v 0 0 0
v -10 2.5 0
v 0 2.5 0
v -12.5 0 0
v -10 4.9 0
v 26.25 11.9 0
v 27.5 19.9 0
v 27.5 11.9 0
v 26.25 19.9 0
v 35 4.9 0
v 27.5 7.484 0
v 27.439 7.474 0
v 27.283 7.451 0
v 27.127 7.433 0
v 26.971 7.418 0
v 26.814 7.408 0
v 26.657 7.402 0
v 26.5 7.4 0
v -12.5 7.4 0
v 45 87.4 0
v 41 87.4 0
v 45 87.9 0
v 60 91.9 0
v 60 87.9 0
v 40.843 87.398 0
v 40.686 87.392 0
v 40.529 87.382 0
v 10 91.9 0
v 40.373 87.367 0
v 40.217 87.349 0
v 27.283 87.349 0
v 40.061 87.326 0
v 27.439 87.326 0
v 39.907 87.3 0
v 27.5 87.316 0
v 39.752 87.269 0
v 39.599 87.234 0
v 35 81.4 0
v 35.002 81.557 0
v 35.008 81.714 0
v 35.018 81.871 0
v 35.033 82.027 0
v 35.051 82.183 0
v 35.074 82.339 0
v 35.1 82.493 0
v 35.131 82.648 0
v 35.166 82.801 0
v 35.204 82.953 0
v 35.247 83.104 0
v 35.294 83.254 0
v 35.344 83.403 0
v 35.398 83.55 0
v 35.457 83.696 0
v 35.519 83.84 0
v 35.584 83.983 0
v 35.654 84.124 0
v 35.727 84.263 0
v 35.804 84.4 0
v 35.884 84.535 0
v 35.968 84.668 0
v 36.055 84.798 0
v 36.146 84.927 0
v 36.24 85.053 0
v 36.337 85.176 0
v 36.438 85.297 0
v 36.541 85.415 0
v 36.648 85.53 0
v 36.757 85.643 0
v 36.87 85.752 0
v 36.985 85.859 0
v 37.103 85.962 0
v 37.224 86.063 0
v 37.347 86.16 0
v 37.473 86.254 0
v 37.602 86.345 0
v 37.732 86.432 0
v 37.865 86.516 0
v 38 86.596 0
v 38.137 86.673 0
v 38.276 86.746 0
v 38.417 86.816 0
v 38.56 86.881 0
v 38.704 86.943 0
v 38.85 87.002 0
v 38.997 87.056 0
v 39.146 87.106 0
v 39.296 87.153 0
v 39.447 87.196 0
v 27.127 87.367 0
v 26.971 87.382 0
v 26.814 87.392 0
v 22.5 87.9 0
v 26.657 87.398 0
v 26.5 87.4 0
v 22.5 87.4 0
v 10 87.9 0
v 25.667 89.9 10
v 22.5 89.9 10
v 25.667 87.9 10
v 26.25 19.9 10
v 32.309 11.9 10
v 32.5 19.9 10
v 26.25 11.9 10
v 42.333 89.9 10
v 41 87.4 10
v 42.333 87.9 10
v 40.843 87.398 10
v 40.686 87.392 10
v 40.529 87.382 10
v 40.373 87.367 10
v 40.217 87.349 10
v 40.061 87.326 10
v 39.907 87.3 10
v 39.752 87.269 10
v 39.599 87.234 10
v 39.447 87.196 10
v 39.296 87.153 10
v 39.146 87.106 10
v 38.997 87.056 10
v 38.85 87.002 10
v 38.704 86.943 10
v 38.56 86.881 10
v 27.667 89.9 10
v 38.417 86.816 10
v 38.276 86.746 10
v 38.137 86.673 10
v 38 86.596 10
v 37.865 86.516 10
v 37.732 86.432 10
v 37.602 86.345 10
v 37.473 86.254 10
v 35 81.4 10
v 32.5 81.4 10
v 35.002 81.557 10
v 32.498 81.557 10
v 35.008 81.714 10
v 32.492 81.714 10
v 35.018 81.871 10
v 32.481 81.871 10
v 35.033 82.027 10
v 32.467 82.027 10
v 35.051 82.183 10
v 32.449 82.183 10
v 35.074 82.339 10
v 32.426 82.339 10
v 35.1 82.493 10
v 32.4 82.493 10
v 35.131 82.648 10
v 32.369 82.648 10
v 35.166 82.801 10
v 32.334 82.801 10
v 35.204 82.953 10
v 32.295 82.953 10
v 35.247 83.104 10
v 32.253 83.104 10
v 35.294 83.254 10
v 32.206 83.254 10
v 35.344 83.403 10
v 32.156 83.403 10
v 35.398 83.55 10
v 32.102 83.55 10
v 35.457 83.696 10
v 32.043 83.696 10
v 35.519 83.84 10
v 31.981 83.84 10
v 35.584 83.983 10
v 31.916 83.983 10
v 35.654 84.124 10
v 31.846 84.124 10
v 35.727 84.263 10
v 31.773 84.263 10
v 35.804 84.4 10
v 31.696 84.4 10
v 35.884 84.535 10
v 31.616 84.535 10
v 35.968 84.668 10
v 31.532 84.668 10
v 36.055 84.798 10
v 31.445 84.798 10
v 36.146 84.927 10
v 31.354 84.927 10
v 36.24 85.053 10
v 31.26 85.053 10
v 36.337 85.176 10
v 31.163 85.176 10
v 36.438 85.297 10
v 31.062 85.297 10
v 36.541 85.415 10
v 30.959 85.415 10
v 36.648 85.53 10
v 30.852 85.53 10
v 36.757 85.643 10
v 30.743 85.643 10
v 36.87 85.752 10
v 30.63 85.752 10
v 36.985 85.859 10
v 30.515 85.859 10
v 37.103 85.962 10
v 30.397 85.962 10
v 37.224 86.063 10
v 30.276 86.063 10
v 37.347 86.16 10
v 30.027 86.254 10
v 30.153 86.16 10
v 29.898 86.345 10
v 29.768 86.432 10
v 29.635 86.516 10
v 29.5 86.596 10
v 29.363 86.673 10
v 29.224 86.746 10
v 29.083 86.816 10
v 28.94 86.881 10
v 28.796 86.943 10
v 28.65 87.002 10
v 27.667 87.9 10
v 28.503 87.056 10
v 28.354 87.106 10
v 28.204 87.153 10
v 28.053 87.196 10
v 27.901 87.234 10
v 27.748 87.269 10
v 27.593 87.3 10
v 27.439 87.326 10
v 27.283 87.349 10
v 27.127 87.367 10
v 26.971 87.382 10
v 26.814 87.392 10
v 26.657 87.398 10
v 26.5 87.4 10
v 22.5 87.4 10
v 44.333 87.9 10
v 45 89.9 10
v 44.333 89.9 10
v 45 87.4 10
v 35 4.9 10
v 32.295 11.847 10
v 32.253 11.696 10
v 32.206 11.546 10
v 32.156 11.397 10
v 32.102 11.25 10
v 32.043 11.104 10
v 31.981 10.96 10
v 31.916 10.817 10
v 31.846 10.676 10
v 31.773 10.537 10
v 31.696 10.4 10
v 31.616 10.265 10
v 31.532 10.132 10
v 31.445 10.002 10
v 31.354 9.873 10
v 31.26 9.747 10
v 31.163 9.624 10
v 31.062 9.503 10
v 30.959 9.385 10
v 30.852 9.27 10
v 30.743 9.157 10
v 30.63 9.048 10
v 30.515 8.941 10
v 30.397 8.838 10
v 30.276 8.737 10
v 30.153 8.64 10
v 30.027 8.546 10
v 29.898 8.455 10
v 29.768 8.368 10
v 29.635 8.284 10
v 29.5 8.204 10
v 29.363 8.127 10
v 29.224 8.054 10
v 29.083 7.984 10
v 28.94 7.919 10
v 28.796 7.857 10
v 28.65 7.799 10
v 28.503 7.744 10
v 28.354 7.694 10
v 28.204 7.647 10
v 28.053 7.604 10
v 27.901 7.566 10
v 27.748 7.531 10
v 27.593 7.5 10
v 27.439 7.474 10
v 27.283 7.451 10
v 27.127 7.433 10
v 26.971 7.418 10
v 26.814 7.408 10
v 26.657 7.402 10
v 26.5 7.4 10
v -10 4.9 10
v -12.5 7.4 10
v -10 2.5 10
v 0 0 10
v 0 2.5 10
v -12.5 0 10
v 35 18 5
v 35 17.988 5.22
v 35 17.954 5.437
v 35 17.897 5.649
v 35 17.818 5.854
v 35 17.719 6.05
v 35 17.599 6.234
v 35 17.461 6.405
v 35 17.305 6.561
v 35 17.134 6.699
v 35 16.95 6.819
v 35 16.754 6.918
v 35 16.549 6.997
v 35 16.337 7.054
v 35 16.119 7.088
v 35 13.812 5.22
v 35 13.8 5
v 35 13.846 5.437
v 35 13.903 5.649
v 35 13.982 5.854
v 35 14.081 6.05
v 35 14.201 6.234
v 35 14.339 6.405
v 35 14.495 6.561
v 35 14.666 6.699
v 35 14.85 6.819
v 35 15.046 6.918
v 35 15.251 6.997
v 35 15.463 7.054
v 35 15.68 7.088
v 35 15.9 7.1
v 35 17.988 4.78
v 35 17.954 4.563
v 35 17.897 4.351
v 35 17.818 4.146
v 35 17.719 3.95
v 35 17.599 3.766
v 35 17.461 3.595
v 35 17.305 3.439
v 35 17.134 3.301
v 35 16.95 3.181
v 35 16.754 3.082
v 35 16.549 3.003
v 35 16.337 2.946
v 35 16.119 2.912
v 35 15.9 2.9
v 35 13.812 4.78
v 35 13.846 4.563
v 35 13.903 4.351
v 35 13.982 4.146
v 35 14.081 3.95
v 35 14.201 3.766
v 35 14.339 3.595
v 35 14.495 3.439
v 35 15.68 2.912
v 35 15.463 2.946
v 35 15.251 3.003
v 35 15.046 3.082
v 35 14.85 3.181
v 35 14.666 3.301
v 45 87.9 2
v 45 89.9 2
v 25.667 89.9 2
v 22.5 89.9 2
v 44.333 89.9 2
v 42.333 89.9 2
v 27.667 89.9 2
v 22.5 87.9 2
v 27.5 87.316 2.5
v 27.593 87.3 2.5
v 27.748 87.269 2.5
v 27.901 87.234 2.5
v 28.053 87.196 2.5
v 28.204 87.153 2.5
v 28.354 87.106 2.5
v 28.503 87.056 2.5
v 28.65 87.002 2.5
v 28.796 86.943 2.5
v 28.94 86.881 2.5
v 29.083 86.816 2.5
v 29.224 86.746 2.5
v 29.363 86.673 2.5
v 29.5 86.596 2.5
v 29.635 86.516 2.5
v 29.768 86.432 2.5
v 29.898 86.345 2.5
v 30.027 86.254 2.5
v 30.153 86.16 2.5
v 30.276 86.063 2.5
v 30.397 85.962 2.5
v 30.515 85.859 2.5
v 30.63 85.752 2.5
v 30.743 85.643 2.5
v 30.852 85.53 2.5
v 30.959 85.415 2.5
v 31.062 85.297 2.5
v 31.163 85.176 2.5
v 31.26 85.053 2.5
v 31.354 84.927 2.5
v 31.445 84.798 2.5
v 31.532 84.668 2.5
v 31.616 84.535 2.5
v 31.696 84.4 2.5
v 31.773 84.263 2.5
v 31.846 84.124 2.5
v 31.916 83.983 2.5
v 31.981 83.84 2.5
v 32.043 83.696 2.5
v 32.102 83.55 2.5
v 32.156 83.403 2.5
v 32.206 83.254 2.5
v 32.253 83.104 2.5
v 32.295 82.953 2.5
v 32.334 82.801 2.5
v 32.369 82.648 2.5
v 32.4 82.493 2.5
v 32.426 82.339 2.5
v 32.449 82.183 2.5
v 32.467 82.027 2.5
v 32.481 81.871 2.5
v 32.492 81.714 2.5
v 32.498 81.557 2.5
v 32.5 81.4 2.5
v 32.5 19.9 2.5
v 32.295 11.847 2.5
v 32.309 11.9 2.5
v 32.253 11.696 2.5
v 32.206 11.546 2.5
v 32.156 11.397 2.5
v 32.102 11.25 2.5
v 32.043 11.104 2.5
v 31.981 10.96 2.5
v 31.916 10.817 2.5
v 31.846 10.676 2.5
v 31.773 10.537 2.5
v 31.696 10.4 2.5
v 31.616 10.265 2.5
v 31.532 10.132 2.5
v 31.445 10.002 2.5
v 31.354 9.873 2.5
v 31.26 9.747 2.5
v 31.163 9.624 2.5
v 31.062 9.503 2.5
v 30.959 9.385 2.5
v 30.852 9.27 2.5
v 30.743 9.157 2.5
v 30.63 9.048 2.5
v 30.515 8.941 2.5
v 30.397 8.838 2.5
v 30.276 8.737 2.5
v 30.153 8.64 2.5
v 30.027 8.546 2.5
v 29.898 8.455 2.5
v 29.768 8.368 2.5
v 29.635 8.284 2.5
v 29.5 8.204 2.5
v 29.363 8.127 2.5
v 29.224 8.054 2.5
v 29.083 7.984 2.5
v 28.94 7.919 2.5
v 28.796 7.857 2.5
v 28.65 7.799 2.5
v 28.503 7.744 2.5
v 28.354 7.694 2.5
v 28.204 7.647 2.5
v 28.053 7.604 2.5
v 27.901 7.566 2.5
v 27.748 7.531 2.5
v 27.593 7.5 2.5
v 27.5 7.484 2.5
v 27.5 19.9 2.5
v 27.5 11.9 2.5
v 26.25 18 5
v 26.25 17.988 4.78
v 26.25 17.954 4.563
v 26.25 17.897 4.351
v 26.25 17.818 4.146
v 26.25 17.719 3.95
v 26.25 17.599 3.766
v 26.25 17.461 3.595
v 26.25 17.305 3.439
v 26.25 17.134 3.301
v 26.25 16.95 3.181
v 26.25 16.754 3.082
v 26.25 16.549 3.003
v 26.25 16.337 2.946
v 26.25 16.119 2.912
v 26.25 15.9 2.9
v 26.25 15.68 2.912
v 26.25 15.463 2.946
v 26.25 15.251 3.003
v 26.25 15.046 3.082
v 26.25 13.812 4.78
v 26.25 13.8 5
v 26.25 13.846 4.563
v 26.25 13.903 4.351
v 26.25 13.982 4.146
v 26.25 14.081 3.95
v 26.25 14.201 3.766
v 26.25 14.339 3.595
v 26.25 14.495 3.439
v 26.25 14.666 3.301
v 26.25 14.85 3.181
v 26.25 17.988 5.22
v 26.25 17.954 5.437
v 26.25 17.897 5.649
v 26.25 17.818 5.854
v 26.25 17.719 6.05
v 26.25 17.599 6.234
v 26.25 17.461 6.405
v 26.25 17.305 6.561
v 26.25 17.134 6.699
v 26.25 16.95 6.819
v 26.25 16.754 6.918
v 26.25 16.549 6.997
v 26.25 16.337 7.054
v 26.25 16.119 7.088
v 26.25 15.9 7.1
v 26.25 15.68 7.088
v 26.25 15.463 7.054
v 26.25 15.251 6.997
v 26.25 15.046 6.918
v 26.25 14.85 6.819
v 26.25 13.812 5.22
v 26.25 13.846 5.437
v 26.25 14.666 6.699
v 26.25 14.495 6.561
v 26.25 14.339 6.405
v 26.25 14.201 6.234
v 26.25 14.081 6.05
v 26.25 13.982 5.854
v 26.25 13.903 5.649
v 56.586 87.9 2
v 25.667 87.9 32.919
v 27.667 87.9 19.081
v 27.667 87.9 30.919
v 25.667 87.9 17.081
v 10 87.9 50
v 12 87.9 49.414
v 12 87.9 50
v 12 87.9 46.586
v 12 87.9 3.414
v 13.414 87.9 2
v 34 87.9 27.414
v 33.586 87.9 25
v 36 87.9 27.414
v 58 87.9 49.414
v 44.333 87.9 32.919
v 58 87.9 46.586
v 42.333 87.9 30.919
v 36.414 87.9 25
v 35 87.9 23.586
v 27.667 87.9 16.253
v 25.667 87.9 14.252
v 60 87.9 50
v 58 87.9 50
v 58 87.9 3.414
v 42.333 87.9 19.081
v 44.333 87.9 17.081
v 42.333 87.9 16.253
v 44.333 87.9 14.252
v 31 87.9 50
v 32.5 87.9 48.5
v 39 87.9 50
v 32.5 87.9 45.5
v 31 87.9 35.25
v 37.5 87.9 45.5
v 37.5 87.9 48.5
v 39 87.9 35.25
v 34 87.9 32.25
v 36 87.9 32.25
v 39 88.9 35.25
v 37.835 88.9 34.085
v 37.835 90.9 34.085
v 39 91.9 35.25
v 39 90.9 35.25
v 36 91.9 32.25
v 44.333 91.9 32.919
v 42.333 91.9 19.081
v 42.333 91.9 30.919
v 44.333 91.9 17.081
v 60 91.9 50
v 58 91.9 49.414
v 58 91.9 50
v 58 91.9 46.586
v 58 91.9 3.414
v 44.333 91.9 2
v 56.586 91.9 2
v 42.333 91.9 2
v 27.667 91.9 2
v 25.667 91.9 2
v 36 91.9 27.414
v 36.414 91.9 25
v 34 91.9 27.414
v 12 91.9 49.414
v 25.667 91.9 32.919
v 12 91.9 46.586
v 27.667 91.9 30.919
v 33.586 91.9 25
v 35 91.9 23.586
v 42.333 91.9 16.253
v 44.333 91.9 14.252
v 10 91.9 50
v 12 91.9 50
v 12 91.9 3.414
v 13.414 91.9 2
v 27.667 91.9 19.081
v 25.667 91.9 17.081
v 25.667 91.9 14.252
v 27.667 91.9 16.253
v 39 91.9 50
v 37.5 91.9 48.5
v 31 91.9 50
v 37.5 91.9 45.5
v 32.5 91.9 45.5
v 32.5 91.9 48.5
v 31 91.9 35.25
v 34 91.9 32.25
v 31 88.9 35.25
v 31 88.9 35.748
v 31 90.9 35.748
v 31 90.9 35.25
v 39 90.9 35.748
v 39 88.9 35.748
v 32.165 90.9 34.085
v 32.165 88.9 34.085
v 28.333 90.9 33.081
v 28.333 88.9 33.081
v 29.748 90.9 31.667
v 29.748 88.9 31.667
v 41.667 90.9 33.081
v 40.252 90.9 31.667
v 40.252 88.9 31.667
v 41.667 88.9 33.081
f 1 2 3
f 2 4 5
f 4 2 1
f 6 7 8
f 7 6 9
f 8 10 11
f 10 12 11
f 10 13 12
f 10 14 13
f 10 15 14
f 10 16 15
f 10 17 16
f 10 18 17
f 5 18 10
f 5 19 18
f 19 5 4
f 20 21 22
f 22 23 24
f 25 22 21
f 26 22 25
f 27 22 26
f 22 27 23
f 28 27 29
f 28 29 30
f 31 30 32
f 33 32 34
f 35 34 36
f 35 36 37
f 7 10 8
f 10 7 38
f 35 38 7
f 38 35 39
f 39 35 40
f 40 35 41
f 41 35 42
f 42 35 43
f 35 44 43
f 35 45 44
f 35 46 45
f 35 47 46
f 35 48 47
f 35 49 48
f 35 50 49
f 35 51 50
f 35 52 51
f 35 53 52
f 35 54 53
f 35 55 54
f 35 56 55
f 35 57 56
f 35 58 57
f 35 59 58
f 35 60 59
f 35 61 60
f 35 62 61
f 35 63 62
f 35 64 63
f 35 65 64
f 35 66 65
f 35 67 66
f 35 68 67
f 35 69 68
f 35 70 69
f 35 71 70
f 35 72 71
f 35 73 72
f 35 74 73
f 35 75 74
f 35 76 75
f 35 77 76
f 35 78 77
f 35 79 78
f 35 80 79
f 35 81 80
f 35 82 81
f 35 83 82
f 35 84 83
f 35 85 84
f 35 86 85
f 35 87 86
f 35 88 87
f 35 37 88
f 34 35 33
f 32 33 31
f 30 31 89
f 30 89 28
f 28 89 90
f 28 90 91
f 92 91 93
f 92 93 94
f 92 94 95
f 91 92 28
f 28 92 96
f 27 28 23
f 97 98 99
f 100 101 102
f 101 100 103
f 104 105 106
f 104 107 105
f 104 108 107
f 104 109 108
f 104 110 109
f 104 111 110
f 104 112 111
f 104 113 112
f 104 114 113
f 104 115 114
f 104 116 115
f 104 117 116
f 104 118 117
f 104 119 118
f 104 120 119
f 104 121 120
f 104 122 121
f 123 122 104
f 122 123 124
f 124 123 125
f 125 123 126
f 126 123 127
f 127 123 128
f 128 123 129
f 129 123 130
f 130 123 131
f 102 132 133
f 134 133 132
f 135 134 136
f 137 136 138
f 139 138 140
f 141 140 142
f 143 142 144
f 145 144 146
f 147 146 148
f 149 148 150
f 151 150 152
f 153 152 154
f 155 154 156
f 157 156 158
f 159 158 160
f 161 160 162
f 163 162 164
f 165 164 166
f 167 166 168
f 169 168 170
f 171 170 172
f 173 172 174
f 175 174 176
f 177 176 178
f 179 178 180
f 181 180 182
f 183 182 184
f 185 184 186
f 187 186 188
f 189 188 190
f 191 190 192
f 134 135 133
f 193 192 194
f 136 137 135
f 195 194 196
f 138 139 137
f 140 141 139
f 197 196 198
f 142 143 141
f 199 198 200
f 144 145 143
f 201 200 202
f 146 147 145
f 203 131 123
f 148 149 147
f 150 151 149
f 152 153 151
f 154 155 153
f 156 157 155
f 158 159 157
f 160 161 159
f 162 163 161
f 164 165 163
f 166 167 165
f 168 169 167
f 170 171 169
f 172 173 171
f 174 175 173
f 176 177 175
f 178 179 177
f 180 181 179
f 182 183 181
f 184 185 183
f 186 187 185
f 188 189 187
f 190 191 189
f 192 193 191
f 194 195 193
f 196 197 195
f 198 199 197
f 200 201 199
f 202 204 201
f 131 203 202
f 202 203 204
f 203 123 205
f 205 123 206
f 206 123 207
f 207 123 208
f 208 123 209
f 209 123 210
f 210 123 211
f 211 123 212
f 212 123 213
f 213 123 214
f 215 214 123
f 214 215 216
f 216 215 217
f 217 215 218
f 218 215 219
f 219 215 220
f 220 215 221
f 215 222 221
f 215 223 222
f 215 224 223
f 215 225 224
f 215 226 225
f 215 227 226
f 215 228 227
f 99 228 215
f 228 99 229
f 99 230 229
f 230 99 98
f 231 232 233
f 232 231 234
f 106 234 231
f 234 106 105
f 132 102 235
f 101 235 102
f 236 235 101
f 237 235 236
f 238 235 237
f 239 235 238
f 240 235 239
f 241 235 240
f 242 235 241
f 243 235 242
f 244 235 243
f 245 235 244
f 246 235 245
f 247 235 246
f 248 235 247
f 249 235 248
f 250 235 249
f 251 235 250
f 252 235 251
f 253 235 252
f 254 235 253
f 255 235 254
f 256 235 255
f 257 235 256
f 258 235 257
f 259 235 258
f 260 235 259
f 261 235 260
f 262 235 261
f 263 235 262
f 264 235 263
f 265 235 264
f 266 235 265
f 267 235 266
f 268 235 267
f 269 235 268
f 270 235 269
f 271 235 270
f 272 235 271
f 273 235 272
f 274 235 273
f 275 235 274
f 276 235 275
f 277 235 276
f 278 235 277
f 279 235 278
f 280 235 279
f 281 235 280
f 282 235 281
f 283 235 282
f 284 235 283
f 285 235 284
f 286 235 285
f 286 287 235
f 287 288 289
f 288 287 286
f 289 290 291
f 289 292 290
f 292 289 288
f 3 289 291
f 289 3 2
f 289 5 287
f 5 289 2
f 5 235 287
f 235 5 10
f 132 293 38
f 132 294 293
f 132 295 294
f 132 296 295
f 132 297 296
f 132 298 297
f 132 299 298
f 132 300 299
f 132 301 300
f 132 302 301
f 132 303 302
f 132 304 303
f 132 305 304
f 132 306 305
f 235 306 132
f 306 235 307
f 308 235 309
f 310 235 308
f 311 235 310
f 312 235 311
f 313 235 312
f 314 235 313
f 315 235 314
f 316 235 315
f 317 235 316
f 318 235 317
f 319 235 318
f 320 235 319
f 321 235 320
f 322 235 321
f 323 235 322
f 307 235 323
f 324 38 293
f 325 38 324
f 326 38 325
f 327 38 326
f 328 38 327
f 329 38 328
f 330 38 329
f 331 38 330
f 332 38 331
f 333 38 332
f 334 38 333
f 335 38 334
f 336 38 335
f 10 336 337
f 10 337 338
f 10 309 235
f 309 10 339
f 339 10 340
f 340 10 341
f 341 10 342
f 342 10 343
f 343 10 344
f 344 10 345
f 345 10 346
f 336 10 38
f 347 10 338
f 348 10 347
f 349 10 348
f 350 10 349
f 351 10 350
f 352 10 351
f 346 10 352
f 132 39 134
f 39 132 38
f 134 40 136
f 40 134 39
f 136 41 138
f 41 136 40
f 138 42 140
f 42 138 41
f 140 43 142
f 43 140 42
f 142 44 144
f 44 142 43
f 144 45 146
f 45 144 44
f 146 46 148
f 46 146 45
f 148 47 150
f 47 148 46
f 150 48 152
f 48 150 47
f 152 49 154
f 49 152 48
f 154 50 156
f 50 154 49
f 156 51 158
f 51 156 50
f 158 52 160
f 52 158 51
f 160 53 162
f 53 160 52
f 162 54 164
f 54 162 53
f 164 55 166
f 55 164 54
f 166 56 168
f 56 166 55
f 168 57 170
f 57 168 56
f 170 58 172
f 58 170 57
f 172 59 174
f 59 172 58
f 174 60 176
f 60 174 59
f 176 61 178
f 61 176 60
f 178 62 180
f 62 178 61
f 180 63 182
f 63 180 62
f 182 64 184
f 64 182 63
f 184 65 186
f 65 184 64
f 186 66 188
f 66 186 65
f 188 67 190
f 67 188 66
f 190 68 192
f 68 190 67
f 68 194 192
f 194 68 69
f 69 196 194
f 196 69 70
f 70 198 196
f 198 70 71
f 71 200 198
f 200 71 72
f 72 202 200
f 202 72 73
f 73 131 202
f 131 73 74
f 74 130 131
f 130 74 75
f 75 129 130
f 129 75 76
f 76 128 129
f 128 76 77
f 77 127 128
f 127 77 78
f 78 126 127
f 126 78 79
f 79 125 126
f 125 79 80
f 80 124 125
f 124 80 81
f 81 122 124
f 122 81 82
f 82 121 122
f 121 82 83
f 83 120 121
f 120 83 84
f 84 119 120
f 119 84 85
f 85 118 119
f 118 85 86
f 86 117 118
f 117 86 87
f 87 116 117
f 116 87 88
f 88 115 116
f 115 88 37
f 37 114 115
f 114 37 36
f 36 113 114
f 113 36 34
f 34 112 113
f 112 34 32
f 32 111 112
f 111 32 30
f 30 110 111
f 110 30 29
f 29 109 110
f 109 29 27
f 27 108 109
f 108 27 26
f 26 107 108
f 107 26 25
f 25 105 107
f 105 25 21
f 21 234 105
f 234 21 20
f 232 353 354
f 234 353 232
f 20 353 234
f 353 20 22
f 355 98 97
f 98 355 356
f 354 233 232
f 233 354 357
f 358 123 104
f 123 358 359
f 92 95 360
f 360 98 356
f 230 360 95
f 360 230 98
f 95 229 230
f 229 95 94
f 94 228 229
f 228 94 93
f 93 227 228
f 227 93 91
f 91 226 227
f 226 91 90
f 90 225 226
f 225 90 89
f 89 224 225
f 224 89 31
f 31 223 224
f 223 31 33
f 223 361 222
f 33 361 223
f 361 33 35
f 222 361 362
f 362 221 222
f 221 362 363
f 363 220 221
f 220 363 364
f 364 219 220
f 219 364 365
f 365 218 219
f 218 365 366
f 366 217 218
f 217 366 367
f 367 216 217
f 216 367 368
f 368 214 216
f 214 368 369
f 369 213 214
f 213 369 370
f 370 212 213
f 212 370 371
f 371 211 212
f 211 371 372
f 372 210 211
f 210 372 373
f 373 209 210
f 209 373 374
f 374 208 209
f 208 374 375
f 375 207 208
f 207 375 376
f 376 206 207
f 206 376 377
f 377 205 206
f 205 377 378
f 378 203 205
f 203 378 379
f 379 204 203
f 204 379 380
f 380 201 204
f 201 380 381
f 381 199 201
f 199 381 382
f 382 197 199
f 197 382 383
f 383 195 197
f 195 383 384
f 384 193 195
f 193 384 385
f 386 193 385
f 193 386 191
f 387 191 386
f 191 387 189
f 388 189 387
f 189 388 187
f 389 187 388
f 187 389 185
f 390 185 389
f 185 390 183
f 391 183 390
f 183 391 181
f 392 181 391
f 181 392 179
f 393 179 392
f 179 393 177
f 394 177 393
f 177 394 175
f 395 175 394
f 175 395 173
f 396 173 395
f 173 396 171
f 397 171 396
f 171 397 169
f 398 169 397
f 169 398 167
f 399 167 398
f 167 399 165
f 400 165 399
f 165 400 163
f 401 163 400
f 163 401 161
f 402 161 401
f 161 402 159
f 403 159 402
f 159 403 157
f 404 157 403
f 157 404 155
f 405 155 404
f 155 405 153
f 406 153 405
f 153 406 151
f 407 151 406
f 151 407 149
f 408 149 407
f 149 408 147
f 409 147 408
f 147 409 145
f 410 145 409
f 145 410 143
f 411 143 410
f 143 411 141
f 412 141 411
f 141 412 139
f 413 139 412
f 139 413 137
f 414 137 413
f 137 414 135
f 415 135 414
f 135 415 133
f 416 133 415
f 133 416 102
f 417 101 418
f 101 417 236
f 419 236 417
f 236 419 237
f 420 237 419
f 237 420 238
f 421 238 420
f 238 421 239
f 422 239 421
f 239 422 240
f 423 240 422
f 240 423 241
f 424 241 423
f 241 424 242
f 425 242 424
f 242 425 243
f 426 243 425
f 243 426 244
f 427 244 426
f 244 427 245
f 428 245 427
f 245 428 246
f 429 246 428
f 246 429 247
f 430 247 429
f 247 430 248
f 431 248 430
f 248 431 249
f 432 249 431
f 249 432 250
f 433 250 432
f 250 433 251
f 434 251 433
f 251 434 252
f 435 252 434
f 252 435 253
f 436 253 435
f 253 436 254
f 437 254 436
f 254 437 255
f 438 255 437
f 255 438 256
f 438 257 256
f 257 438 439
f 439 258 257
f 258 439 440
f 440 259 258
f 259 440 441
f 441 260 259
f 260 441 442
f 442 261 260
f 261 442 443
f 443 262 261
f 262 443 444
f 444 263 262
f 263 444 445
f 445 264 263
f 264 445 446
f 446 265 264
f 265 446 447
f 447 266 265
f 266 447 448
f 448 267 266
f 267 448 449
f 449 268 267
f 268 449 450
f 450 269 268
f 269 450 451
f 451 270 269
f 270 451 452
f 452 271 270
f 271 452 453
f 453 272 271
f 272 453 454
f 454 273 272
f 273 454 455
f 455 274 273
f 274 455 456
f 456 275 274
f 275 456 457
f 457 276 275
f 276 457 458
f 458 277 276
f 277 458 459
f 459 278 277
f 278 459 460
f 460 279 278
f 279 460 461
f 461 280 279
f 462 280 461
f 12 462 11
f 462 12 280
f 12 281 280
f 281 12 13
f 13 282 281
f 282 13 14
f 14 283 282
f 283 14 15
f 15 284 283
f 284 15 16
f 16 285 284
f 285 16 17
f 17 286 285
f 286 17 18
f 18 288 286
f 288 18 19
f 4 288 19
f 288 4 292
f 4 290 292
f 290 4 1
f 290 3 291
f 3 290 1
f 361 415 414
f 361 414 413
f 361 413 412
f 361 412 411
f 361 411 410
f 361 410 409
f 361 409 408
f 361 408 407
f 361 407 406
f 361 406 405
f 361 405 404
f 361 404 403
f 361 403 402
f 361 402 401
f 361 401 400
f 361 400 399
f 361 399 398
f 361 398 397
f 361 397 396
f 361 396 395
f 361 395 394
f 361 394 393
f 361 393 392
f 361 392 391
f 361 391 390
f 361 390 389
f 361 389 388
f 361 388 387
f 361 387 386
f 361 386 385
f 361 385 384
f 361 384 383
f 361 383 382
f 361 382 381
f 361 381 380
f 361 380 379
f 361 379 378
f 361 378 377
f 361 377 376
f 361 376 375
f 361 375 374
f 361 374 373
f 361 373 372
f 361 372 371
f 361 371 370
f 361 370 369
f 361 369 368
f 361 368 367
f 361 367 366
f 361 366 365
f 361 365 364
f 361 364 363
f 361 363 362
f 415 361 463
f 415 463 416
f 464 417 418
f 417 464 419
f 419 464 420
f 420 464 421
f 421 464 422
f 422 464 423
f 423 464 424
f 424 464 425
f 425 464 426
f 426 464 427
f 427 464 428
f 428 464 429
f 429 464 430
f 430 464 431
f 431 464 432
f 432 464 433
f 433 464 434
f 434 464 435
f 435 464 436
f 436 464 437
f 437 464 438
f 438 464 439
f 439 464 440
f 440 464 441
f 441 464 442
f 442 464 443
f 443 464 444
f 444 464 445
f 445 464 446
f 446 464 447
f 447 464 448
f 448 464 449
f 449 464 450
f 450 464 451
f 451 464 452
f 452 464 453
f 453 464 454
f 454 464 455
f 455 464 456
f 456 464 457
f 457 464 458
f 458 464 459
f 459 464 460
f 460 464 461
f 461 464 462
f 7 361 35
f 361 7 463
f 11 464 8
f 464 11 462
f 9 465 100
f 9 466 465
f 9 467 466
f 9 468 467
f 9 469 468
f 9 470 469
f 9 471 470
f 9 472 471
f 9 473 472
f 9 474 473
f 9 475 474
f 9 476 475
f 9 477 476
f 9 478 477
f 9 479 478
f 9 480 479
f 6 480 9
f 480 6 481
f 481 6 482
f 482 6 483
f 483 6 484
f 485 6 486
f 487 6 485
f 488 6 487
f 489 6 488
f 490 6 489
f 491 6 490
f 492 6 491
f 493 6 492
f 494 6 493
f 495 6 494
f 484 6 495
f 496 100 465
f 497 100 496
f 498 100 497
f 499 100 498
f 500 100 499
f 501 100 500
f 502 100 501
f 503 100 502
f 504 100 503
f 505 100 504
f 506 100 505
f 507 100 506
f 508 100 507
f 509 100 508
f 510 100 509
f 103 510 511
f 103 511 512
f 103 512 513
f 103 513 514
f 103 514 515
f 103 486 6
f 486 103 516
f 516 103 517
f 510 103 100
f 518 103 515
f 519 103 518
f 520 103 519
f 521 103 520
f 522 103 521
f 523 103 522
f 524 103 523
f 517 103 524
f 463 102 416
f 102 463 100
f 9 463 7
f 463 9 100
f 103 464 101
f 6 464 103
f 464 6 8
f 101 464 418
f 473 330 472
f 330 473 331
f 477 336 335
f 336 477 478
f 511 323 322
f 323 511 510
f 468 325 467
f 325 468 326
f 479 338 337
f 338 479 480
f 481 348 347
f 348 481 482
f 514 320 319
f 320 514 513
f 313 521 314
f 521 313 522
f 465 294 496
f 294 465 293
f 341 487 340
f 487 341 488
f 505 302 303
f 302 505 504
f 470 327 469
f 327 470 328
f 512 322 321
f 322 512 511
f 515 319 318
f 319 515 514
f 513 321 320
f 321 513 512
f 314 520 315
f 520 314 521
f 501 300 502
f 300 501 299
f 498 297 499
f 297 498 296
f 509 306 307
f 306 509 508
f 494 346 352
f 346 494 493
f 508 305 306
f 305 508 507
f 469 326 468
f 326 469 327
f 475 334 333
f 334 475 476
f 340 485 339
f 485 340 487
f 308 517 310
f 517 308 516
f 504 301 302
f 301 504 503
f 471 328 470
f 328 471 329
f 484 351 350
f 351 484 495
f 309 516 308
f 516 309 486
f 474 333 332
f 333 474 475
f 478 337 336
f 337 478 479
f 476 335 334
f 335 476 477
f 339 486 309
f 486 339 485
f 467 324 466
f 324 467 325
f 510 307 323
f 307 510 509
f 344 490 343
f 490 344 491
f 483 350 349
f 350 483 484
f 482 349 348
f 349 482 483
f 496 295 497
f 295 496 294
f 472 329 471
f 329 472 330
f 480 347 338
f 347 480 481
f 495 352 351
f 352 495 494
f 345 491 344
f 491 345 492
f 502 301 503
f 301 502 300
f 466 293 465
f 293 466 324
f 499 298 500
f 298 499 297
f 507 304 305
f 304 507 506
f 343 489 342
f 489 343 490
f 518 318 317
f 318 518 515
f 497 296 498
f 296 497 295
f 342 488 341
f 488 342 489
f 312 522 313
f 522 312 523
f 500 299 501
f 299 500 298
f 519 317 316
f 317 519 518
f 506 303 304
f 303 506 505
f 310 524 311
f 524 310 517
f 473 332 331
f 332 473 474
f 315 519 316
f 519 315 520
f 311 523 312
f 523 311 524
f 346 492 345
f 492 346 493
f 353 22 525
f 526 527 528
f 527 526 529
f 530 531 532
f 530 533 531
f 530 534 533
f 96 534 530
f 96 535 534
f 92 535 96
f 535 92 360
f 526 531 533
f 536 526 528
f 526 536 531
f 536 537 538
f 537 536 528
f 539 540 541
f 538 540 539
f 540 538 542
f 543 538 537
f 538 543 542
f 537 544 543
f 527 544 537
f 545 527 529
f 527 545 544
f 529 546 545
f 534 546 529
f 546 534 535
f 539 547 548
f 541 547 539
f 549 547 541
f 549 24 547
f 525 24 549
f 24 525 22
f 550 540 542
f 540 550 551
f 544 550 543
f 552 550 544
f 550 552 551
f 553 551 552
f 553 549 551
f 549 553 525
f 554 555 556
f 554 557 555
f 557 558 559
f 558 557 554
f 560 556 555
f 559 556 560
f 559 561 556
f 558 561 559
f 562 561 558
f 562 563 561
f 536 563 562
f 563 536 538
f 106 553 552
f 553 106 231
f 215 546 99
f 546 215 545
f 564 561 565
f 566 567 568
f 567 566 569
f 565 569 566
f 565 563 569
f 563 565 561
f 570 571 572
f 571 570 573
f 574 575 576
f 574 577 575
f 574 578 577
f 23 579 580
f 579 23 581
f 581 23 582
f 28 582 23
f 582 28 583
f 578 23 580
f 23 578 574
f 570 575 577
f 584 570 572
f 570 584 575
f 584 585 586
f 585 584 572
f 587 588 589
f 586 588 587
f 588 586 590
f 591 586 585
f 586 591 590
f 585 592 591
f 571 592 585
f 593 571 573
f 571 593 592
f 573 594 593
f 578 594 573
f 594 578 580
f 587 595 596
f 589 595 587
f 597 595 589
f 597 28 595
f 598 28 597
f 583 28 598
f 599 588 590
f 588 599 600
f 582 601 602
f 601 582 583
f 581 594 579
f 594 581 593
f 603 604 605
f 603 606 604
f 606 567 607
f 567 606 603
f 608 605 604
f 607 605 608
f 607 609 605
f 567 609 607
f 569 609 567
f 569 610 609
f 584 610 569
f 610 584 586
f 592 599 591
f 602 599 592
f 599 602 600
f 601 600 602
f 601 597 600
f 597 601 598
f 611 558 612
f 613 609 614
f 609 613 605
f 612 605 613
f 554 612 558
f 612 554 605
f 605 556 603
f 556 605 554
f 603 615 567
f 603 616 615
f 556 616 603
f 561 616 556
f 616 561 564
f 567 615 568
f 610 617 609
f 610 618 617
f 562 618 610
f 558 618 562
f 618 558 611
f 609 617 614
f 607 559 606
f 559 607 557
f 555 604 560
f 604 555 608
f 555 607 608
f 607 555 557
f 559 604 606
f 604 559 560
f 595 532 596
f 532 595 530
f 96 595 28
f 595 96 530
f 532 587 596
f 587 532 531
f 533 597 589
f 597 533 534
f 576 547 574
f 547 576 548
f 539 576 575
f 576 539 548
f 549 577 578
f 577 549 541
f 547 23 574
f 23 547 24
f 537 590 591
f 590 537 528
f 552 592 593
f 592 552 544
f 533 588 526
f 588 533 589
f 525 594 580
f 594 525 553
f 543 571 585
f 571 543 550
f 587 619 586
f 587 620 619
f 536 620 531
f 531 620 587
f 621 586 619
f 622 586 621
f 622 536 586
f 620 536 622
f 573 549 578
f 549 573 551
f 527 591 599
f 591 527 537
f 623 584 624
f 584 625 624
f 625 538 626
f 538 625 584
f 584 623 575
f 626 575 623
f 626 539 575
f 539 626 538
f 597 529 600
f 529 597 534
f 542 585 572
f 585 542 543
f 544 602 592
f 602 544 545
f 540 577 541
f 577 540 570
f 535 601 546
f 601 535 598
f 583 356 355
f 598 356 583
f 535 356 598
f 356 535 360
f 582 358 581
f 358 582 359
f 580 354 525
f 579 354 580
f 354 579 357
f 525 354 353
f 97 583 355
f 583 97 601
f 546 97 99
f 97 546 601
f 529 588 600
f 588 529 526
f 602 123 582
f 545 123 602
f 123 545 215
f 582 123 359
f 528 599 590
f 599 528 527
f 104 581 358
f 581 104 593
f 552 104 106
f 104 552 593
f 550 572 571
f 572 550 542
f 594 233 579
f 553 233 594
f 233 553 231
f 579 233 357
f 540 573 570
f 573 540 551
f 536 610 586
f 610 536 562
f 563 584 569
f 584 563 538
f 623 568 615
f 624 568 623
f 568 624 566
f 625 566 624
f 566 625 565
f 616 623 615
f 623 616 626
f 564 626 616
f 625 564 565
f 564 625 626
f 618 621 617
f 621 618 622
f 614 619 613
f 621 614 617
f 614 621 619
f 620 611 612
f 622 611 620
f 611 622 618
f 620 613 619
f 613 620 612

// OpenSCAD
include <Round-Anything/polyround.scad>

$fn=60;

MAIN_TN=2.5;
BRD_WD=90;
BRD_TN=2.4;
PYLON_HT=80;
CLAMP_LN=10;
FILLET=6;
LED_FOOT_WD=20;
FLAT_WD=10;

FRAME_SZ = 50;
BRACE_LN=15;
LEG_TN=2;



//############################################################
// light mount frames
module light_mount_frame(){
    // 2 uprights
    translate([0,FRAME_SZ/2-LEG_TN/2,0]){
        cube([FRAME_SZ,LEG_TN,LEG_TN*2],center=true);
        
    }
    translate([0,-FRAME_SZ/2+LEG_TN/2,0]){
        cube([FRAME_SZ,LEG_TN,LEG_TN*2],center=true);
    
    }

    // diagonals
    rotate(-45,[0,0,1]){
        cube([FRAME_SZ*(sqrt(2))-LEG_TN,LEG_TN,LEG_TN*2],center=true);
    }

    rotate(45,[0,0,1]){
        translate([0,0,0]){
            cube([FRAME_SZ*(sqrt(2))-LEG_TN,LEG_TN,LEG_TN*2],center=true);
        }
    }
    
    // base
    translate([FRAME_SZ/2-LEG_TN/2,0,0]){
        rotate(90,[0,0,1]){
            cube([FRAME_SZ,LEG_TN,LEG_TN*2],center=true);
        }
    }

    // 3/4 uprights
    translate([FRAME_SZ/2 - (2/6*FRAME_SZ),FRAME_SZ/6,0]){
        cube([FRAME_SZ*2/3,LEG_TN,LEG_TN*2],center=true);
    }
    translate([FRAME_SZ/2 - (2/6*FRAME_SZ),-FRAME_SZ/6,0]){
        cube([FRAME_SZ*2/3,LEG_TN,LEG_TN*2],center=true);
    }

    // center upright with hole
    translate([-FRAME_SZ/8,0,0]){
        cube([FRAME_SZ/4,LEG_TN,LEG_TN*2],center=true);
    }

    center_needle_points=[
        [-FRAME_SZ/8,0],
        [-FRAME_SZ/8-(LEG_TN*2),-(LEG_TN*2)],
        [-FRAME_SZ/2,-(LEG_TN*2)],
        [-FRAME_SZ/2,(LEG_TN*2)],
        [-FRAME_SZ/8-(LEG_TN*2),(LEG_TN*2)]
    ];
    difference(){
        translate([0,0,-LEG_TN]){
            linear_extrude(height=(LEG_TN*2)){
                polygon(center_needle_points);
            }
        }
        translate([-(FRAME_SZ/2-LEG_TN*1.5),0,0]){
            cube([3,5,LEG_TN*3],center=true);
        }
    }
    // struts for upright
    translate([-FRAME_SZ/6,-FRAME_SZ/10,0]){
        rotate(45,[0,0,1]){
            cube([LEG_TN,FRAME_SZ/8,LEG_TN],center=true);
        }
    }
    translate([-FRAME_SZ/6,FRAME_SZ/10,0]){
        rotate(-45,[0,0,1]){
            cube([LEG_TN,FRAME_SZ/8,LEG_TN],center=true);
        }
    }



}





pylon_points = [
    [0,0,0],
    [-CLAMP_LN-MAIN_TN, 0,0],
    [-CLAMP_LN-MAIN_TN, BRD_TN+(2*MAIN_TN), 0],
    [(BRD_WD/2)-CLAMP_LN-MAIN_TN, BRD_TN+(2*MAIN_TN), FILLET],
    [(BRD_WD/2)-CLAMP_LN-MAIN_TN, BRD_TN+(2*MAIN_TN)+PYLON_HT, FILLET],
    [(BRD_WD/2)-CLAMP_LN-MAIN_TN-(LED_FOOT_WD/2), BRD_TN+(2*MAIN_TN)+PYLON_HT,0],
    [(BRD_WD/2)-CLAMP_LN-MAIN_TN-(LED_FOOT_WD/2), BRD_TN+(3*MAIN_TN)+PYLON_HT,0],
    [(BRD_WD/2)-CLAMP_LN+(LED_FOOT_WD/2), BRD_TN+(3*MAIN_TN)+PYLON_HT,0],
    [(BRD_WD/2)-CLAMP_LN+(LED_FOOT_WD/2), BRD_TN+(2*MAIN_TN)+PYLON_HT,0],
    [(BRD_WD/2)-CLAMP_LN, BRD_TN+(2*MAIN_TN)+PYLON_HT, FILLET],
    [(BRD_WD/2)-CLAMP_LN, BRD_TN+(MAIN_TN),0],
    [-CLAMP_LN, BRD_TN+MAIN_TN,0],
    [-CLAMP_LN,MAIN_TN,0],
    [0,MAIN_TN,0],
];

difference(){
    union(){
        linear_extrude(height=FLAT_WD){
            polygon(polyRound(pylon_points,$fn));
        }
        translate([(BRD_WD/2)-CLAMP_LN-(2*MAIN_TN),PYLON_HT/2+(2*MAIN_TN)+BRD_TN,MAIN_TN/2]){
            cube([2*MAIN_TN,PYLON_HT,MAIN_TN],center=true);
        }

        translate([(BRD_WD/2)-CLAMP_LN-(MAIN_TN*2), (3*MAIN_TN)+BRD_TN+FILLET, FLAT_WD/2]){
            cube([3*MAIN_TN,8,FLAT_WD],center=true);
        }
    }
    #translate([(BRD_WD/2)-CLAMP_LN-(MAIN_TN*2),(3*MAIN_TN)+BRD_TN+FILLET,FLAT_WD/2]){
        rotate(90,[0,1,0]){
            cylinder(h=12,r=4.2/2,center=true);
        }
    }
}
translate([(BRD_WD/2)-CLAMP_LN,BRD_TN+(3*MAIN_TN)+PYLON_HT,FRAME_SZ/2]){
    rotate(-90,[1,0,0]){
        rotate(90,[0,0,1]){
            light_mount_frame();
        }
    }
}
